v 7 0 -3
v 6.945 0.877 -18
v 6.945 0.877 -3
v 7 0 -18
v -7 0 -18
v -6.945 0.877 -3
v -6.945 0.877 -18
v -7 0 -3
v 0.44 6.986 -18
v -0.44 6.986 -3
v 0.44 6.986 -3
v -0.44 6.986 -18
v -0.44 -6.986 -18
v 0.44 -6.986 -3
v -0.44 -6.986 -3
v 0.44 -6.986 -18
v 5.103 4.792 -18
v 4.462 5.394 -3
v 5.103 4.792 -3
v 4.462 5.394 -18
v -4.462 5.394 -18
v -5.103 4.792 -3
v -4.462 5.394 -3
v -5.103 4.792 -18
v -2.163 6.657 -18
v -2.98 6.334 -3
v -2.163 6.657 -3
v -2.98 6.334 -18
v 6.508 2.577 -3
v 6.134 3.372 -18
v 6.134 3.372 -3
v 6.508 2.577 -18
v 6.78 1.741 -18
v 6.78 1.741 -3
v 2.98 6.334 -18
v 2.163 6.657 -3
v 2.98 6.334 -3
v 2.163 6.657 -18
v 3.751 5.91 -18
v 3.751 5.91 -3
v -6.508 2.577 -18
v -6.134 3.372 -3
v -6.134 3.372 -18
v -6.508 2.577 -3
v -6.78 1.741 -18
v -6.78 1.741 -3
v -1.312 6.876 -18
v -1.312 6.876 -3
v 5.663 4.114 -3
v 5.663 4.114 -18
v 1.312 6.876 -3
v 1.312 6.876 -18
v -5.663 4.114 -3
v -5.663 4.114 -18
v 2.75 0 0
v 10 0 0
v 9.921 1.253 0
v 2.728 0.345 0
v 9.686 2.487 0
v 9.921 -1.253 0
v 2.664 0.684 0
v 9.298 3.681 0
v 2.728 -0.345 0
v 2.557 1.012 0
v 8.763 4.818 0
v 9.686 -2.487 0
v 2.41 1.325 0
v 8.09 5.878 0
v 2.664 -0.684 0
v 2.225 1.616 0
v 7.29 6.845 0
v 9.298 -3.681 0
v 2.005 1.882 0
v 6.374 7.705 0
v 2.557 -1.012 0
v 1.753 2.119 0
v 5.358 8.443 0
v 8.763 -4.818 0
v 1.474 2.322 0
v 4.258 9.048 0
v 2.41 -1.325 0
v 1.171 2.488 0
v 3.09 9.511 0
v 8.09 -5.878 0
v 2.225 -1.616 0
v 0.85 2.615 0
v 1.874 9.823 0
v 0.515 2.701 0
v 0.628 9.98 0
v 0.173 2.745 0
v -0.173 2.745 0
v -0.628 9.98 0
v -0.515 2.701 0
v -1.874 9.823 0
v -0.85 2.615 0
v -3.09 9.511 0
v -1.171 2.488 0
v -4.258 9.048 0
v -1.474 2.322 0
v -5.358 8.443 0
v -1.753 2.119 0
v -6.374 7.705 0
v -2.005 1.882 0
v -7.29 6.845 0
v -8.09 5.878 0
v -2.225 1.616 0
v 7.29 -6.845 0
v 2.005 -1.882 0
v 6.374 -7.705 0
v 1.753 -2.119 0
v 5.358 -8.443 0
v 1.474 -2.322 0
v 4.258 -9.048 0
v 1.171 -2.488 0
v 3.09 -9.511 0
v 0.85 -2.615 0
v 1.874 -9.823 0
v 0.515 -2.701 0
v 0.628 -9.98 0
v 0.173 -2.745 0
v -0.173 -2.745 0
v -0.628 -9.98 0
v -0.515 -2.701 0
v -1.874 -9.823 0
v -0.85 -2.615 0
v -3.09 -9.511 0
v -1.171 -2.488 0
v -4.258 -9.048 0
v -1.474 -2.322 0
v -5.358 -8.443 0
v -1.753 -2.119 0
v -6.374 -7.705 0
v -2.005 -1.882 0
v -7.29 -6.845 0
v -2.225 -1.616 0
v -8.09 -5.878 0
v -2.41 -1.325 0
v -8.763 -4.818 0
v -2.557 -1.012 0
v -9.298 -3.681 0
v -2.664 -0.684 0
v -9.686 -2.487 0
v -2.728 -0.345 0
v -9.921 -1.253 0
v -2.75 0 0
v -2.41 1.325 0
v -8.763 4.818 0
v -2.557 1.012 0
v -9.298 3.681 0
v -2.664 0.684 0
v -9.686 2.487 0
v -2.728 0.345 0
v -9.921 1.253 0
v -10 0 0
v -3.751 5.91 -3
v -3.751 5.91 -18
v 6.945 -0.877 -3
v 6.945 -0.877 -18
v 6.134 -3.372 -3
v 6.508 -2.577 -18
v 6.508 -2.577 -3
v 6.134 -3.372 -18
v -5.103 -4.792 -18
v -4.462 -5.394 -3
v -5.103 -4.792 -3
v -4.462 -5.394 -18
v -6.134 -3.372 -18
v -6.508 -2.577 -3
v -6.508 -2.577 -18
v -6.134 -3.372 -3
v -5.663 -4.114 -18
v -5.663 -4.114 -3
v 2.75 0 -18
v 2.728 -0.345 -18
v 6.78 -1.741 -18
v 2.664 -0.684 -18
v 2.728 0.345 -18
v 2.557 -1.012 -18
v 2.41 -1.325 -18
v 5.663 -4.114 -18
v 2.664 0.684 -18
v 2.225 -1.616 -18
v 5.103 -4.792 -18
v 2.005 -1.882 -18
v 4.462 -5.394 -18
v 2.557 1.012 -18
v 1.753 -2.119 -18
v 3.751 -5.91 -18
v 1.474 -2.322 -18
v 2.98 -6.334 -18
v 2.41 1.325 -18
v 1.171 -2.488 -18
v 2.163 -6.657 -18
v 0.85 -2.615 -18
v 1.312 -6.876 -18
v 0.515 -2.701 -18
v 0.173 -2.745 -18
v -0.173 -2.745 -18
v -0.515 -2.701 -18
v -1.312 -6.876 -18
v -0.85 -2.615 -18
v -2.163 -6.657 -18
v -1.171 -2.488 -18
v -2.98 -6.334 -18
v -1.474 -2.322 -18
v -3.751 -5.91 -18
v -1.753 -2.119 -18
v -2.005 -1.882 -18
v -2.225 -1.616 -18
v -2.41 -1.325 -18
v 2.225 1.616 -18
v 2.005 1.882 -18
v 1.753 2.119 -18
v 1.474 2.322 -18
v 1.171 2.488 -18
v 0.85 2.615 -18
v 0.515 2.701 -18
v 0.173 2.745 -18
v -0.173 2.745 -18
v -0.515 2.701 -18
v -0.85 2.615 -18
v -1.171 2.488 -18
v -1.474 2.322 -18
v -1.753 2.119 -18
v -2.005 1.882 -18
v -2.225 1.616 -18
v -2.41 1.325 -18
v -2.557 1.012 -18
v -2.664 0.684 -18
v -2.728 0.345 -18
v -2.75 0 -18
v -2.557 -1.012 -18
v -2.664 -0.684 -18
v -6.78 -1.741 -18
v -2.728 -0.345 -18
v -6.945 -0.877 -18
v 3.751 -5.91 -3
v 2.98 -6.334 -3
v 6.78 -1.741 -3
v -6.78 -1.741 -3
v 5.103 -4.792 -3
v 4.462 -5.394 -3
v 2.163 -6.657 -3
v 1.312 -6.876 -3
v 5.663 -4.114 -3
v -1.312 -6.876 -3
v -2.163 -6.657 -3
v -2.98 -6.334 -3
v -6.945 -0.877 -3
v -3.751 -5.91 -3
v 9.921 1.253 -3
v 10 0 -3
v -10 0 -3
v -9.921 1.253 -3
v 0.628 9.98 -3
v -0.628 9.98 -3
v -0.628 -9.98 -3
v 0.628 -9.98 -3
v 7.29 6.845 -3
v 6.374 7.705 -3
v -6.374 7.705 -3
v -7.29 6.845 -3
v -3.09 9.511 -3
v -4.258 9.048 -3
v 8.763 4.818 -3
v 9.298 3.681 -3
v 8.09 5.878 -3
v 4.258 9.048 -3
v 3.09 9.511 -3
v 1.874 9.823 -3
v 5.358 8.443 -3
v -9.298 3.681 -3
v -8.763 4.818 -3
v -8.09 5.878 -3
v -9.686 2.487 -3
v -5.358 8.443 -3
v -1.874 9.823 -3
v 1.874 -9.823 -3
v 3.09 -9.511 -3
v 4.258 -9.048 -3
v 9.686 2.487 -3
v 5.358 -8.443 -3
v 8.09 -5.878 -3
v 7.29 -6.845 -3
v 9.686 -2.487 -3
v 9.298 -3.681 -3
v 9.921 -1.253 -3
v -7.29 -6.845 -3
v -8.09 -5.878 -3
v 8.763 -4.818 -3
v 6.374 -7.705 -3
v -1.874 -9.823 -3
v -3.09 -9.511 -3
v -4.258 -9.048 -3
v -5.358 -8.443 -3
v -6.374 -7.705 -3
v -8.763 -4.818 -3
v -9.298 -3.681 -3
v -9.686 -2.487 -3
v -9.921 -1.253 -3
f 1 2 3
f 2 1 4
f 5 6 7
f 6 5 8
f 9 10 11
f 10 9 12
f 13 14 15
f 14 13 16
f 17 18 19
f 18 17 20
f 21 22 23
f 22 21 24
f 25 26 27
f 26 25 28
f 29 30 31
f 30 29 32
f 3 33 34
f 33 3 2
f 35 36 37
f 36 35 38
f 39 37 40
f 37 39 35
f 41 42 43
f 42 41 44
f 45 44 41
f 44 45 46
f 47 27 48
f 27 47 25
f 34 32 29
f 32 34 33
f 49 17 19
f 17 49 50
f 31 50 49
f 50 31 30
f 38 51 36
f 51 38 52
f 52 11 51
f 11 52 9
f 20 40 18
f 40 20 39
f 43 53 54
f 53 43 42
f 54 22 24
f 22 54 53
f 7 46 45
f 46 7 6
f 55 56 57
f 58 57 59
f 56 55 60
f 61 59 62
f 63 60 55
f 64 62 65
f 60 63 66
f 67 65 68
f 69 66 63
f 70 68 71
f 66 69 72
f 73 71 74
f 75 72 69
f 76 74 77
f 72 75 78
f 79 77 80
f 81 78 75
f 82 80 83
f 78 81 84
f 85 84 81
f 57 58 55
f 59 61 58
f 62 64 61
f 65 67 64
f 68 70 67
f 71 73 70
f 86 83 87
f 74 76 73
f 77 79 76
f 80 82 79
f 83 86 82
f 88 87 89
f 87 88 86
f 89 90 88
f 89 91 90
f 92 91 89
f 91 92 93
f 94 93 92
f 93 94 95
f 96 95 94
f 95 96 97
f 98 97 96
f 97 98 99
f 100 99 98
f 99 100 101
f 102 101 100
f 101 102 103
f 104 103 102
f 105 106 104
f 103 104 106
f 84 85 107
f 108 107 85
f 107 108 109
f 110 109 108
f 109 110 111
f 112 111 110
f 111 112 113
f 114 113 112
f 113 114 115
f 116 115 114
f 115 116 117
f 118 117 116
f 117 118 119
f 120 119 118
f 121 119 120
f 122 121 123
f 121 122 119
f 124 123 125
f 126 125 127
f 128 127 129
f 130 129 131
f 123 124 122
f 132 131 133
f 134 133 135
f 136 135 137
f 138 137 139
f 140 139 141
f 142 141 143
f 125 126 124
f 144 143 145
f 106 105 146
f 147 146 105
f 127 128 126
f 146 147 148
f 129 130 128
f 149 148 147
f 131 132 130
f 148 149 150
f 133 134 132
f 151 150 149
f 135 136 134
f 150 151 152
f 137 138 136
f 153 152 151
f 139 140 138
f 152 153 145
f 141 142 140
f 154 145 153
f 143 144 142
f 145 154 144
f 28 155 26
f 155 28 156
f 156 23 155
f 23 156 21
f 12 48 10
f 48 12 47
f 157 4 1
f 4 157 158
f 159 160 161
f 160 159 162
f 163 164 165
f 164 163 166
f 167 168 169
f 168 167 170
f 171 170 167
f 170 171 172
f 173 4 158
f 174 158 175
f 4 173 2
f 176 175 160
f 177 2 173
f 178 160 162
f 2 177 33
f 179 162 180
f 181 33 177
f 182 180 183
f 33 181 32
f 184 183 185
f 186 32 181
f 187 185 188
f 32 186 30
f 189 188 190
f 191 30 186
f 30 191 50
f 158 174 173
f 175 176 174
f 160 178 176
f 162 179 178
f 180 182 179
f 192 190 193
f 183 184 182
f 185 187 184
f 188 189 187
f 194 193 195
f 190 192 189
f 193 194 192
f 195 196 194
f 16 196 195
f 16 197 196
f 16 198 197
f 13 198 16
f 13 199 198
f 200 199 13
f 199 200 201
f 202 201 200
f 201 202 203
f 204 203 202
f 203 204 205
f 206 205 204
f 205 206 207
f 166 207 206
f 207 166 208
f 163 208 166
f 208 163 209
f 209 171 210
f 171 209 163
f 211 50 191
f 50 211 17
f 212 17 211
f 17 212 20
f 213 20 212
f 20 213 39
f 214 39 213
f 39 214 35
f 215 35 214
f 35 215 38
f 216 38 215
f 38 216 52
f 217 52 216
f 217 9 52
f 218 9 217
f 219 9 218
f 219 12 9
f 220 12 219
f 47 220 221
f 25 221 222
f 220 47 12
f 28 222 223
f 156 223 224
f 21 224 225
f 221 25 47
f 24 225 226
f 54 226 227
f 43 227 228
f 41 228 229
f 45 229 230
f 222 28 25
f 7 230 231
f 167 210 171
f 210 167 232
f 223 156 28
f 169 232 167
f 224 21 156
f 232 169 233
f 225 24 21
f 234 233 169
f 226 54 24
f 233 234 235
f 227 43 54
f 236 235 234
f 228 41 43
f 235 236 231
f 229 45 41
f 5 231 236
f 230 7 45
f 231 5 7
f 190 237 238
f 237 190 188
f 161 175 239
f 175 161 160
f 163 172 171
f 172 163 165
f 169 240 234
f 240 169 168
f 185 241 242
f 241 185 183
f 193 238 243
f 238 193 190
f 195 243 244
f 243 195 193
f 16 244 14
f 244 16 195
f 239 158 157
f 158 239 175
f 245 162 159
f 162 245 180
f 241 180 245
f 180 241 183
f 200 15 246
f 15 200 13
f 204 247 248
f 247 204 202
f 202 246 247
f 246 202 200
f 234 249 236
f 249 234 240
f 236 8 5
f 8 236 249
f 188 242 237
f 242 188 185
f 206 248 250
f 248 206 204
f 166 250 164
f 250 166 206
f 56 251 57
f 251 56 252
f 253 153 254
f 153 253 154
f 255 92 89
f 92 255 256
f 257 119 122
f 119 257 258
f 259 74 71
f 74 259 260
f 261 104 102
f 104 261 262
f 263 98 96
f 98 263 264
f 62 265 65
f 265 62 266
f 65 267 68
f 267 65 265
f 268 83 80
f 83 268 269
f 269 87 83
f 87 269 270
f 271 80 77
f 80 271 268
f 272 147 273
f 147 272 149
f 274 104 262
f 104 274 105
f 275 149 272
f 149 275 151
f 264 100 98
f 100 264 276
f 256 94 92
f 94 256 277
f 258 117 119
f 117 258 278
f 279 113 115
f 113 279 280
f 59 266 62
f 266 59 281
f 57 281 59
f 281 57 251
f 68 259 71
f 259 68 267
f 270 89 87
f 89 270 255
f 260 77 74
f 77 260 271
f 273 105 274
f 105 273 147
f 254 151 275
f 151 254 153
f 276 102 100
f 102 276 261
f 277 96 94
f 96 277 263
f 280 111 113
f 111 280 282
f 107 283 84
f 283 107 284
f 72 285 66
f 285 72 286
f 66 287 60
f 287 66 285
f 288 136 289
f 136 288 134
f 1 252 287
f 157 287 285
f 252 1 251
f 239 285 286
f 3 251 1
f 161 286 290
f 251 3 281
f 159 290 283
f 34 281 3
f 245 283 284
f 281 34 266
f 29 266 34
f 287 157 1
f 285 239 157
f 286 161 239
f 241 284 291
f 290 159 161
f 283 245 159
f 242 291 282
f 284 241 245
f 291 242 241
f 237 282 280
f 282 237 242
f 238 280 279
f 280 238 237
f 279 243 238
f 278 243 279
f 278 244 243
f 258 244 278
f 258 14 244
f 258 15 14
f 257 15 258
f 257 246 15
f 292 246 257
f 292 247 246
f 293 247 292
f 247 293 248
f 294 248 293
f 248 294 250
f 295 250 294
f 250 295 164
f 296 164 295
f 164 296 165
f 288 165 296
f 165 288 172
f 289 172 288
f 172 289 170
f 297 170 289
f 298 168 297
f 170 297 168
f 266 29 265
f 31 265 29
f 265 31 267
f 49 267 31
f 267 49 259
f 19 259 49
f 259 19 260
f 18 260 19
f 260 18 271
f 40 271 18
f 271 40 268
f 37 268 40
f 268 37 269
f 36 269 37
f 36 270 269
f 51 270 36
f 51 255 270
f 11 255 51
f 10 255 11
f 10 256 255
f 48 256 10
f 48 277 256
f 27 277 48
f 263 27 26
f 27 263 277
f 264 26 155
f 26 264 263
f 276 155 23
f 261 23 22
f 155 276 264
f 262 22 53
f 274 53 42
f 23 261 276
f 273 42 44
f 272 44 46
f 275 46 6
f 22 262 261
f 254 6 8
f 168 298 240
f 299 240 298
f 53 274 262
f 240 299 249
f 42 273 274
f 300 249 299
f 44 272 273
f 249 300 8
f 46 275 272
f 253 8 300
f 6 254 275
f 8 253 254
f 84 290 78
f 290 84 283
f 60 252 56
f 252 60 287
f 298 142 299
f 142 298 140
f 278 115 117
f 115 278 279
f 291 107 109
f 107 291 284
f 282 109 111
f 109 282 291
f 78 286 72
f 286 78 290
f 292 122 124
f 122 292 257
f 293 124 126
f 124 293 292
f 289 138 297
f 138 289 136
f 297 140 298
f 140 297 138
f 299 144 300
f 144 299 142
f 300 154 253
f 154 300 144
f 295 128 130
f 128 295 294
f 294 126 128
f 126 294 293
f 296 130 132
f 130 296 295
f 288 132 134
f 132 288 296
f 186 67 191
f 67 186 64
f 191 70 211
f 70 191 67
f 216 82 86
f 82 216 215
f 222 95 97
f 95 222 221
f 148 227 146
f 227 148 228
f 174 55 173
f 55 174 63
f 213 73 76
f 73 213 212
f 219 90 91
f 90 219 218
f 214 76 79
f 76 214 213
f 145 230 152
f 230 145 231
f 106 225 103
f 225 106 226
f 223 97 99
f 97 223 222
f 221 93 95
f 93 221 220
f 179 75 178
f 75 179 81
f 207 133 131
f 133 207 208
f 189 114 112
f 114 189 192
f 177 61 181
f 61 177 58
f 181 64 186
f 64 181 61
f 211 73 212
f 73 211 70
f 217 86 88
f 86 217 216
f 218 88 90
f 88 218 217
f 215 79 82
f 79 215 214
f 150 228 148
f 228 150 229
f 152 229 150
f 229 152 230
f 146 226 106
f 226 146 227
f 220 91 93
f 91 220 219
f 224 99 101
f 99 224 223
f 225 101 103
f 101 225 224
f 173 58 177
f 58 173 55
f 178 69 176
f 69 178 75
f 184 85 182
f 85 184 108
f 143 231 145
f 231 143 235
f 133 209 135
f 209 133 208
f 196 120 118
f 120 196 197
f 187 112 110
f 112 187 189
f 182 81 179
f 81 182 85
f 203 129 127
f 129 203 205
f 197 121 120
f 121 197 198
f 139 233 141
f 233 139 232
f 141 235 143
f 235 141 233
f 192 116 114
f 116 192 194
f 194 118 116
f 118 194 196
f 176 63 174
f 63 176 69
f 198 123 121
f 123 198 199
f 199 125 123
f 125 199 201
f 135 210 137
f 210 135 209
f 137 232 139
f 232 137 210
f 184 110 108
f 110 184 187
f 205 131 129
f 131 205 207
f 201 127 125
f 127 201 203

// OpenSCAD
$fn = 50;


difference() {
	union() {
		translate(v = [0, 0, -18.0000000000]) {
			cylinder(h = 18, r = 7.0000000000);
		}
		translate(v = [0, 0, -3.0000000000]) {
			cylinder(h = 3, r = 10.0000000000);
		}
	}
	union() {
		#translate(v = [0, 0, -18]) {
			cylinder(h = 18, r = 2.7500000000);
		}
	}
}
